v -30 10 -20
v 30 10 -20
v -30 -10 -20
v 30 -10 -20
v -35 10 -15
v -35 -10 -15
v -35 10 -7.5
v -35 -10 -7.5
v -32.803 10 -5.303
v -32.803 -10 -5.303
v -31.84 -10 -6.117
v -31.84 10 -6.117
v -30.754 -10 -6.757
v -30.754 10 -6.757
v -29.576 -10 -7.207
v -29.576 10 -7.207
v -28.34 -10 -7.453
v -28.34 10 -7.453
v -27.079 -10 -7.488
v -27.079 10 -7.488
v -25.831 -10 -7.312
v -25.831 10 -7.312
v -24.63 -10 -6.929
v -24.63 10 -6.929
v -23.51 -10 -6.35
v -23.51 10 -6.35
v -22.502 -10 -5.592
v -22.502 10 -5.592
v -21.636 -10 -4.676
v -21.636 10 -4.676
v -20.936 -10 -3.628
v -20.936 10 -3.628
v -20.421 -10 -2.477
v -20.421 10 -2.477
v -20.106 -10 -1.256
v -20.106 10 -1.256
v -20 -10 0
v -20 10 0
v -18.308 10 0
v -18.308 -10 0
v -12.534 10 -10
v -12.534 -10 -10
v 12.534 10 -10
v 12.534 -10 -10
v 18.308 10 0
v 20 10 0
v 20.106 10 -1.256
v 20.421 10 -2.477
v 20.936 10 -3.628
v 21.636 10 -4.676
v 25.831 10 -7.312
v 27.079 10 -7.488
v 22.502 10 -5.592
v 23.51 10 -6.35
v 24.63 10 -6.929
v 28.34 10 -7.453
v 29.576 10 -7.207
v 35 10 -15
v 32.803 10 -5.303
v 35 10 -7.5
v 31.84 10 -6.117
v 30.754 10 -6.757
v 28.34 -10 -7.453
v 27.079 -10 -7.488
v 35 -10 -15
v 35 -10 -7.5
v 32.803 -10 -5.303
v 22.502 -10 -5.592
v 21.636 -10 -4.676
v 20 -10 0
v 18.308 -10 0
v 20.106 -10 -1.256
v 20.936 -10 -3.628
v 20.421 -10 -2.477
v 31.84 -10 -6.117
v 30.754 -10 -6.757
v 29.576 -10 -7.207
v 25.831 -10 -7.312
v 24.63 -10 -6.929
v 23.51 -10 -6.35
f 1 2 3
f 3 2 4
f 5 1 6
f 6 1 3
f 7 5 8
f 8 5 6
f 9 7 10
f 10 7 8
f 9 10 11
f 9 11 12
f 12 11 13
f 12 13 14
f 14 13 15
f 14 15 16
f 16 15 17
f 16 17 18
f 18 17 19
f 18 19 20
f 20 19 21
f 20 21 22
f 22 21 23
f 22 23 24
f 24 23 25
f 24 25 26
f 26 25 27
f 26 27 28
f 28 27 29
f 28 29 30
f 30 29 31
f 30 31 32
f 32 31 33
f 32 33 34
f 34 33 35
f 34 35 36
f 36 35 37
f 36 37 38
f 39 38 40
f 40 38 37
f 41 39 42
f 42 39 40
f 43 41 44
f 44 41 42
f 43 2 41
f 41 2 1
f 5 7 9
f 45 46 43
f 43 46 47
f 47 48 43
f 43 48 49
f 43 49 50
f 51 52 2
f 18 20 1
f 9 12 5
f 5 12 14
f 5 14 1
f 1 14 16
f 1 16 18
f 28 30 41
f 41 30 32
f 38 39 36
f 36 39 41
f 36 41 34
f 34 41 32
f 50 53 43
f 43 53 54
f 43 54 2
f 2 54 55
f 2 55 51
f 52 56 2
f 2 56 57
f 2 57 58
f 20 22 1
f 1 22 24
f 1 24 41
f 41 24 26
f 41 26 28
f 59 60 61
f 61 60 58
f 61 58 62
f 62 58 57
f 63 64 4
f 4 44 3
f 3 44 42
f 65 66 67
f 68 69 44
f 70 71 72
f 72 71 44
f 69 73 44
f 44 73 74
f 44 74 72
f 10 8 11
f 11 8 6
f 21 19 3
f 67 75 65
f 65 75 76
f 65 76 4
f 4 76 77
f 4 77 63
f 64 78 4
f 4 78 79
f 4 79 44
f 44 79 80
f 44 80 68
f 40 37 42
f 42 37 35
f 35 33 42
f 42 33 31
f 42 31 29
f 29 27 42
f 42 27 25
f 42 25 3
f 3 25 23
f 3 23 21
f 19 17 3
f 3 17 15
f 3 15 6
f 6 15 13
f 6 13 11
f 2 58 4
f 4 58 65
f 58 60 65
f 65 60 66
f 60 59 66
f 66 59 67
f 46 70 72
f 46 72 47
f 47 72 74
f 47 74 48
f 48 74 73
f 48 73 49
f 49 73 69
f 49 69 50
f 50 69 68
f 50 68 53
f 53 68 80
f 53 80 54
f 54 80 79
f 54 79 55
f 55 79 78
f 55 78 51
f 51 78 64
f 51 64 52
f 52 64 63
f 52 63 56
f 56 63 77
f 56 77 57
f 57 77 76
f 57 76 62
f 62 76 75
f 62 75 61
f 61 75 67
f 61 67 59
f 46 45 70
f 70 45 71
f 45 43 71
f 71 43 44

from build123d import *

# Parameters (mm, degrees)
BOSS_EXTRUDE1_START = -10
BOSS_EXTRUDE1_DEPTH = 20


# Read off the part's stored shape, not the designer's step: Boss-Extrude1
with BuildPart() as part:
    # Boss-Extrude1 outline → Boss-Extrude1 (new body)
    with BuildSketch(Plane(origin=(0, 0, 0), x_dir=(1, 0, 0), z_dir=(0, 1, 0)).offset(BOSS_EXTRUDE1_START)):
        with BuildLine():
            Line((-12.534244987, 10), (0, 10))
            Line((0, 10), (0, 20))
            Line((0, 20), (-30, 20))
            Line((-30, 20), (-35, 15))
            Line((-35, 15), (-35, 7.5))
            Line((-35, 7.5), (-32.803300859, 5.303300859))
            ThreePointArc((-32.803300859, 5.303300859), (-24.629874257, 6.929096494), (-20, 0))
            Line((-20, 0), (-18.307747679, 0))
            Line((-18.307747679, 0), (-12.534244987, 10))
        make_face()
    extrude(amount=BOSS_EXTRUDE1_DEPTH)

    # Mirror2: part across plane


with BuildPart() as part_1:
    add(part.part)
    add(part.part.mirror(Plane(origin=(0, 0, 0), x_dir=(0, 0, 1), z_dir=(1, 0, 0))))


solid = part_1.part
